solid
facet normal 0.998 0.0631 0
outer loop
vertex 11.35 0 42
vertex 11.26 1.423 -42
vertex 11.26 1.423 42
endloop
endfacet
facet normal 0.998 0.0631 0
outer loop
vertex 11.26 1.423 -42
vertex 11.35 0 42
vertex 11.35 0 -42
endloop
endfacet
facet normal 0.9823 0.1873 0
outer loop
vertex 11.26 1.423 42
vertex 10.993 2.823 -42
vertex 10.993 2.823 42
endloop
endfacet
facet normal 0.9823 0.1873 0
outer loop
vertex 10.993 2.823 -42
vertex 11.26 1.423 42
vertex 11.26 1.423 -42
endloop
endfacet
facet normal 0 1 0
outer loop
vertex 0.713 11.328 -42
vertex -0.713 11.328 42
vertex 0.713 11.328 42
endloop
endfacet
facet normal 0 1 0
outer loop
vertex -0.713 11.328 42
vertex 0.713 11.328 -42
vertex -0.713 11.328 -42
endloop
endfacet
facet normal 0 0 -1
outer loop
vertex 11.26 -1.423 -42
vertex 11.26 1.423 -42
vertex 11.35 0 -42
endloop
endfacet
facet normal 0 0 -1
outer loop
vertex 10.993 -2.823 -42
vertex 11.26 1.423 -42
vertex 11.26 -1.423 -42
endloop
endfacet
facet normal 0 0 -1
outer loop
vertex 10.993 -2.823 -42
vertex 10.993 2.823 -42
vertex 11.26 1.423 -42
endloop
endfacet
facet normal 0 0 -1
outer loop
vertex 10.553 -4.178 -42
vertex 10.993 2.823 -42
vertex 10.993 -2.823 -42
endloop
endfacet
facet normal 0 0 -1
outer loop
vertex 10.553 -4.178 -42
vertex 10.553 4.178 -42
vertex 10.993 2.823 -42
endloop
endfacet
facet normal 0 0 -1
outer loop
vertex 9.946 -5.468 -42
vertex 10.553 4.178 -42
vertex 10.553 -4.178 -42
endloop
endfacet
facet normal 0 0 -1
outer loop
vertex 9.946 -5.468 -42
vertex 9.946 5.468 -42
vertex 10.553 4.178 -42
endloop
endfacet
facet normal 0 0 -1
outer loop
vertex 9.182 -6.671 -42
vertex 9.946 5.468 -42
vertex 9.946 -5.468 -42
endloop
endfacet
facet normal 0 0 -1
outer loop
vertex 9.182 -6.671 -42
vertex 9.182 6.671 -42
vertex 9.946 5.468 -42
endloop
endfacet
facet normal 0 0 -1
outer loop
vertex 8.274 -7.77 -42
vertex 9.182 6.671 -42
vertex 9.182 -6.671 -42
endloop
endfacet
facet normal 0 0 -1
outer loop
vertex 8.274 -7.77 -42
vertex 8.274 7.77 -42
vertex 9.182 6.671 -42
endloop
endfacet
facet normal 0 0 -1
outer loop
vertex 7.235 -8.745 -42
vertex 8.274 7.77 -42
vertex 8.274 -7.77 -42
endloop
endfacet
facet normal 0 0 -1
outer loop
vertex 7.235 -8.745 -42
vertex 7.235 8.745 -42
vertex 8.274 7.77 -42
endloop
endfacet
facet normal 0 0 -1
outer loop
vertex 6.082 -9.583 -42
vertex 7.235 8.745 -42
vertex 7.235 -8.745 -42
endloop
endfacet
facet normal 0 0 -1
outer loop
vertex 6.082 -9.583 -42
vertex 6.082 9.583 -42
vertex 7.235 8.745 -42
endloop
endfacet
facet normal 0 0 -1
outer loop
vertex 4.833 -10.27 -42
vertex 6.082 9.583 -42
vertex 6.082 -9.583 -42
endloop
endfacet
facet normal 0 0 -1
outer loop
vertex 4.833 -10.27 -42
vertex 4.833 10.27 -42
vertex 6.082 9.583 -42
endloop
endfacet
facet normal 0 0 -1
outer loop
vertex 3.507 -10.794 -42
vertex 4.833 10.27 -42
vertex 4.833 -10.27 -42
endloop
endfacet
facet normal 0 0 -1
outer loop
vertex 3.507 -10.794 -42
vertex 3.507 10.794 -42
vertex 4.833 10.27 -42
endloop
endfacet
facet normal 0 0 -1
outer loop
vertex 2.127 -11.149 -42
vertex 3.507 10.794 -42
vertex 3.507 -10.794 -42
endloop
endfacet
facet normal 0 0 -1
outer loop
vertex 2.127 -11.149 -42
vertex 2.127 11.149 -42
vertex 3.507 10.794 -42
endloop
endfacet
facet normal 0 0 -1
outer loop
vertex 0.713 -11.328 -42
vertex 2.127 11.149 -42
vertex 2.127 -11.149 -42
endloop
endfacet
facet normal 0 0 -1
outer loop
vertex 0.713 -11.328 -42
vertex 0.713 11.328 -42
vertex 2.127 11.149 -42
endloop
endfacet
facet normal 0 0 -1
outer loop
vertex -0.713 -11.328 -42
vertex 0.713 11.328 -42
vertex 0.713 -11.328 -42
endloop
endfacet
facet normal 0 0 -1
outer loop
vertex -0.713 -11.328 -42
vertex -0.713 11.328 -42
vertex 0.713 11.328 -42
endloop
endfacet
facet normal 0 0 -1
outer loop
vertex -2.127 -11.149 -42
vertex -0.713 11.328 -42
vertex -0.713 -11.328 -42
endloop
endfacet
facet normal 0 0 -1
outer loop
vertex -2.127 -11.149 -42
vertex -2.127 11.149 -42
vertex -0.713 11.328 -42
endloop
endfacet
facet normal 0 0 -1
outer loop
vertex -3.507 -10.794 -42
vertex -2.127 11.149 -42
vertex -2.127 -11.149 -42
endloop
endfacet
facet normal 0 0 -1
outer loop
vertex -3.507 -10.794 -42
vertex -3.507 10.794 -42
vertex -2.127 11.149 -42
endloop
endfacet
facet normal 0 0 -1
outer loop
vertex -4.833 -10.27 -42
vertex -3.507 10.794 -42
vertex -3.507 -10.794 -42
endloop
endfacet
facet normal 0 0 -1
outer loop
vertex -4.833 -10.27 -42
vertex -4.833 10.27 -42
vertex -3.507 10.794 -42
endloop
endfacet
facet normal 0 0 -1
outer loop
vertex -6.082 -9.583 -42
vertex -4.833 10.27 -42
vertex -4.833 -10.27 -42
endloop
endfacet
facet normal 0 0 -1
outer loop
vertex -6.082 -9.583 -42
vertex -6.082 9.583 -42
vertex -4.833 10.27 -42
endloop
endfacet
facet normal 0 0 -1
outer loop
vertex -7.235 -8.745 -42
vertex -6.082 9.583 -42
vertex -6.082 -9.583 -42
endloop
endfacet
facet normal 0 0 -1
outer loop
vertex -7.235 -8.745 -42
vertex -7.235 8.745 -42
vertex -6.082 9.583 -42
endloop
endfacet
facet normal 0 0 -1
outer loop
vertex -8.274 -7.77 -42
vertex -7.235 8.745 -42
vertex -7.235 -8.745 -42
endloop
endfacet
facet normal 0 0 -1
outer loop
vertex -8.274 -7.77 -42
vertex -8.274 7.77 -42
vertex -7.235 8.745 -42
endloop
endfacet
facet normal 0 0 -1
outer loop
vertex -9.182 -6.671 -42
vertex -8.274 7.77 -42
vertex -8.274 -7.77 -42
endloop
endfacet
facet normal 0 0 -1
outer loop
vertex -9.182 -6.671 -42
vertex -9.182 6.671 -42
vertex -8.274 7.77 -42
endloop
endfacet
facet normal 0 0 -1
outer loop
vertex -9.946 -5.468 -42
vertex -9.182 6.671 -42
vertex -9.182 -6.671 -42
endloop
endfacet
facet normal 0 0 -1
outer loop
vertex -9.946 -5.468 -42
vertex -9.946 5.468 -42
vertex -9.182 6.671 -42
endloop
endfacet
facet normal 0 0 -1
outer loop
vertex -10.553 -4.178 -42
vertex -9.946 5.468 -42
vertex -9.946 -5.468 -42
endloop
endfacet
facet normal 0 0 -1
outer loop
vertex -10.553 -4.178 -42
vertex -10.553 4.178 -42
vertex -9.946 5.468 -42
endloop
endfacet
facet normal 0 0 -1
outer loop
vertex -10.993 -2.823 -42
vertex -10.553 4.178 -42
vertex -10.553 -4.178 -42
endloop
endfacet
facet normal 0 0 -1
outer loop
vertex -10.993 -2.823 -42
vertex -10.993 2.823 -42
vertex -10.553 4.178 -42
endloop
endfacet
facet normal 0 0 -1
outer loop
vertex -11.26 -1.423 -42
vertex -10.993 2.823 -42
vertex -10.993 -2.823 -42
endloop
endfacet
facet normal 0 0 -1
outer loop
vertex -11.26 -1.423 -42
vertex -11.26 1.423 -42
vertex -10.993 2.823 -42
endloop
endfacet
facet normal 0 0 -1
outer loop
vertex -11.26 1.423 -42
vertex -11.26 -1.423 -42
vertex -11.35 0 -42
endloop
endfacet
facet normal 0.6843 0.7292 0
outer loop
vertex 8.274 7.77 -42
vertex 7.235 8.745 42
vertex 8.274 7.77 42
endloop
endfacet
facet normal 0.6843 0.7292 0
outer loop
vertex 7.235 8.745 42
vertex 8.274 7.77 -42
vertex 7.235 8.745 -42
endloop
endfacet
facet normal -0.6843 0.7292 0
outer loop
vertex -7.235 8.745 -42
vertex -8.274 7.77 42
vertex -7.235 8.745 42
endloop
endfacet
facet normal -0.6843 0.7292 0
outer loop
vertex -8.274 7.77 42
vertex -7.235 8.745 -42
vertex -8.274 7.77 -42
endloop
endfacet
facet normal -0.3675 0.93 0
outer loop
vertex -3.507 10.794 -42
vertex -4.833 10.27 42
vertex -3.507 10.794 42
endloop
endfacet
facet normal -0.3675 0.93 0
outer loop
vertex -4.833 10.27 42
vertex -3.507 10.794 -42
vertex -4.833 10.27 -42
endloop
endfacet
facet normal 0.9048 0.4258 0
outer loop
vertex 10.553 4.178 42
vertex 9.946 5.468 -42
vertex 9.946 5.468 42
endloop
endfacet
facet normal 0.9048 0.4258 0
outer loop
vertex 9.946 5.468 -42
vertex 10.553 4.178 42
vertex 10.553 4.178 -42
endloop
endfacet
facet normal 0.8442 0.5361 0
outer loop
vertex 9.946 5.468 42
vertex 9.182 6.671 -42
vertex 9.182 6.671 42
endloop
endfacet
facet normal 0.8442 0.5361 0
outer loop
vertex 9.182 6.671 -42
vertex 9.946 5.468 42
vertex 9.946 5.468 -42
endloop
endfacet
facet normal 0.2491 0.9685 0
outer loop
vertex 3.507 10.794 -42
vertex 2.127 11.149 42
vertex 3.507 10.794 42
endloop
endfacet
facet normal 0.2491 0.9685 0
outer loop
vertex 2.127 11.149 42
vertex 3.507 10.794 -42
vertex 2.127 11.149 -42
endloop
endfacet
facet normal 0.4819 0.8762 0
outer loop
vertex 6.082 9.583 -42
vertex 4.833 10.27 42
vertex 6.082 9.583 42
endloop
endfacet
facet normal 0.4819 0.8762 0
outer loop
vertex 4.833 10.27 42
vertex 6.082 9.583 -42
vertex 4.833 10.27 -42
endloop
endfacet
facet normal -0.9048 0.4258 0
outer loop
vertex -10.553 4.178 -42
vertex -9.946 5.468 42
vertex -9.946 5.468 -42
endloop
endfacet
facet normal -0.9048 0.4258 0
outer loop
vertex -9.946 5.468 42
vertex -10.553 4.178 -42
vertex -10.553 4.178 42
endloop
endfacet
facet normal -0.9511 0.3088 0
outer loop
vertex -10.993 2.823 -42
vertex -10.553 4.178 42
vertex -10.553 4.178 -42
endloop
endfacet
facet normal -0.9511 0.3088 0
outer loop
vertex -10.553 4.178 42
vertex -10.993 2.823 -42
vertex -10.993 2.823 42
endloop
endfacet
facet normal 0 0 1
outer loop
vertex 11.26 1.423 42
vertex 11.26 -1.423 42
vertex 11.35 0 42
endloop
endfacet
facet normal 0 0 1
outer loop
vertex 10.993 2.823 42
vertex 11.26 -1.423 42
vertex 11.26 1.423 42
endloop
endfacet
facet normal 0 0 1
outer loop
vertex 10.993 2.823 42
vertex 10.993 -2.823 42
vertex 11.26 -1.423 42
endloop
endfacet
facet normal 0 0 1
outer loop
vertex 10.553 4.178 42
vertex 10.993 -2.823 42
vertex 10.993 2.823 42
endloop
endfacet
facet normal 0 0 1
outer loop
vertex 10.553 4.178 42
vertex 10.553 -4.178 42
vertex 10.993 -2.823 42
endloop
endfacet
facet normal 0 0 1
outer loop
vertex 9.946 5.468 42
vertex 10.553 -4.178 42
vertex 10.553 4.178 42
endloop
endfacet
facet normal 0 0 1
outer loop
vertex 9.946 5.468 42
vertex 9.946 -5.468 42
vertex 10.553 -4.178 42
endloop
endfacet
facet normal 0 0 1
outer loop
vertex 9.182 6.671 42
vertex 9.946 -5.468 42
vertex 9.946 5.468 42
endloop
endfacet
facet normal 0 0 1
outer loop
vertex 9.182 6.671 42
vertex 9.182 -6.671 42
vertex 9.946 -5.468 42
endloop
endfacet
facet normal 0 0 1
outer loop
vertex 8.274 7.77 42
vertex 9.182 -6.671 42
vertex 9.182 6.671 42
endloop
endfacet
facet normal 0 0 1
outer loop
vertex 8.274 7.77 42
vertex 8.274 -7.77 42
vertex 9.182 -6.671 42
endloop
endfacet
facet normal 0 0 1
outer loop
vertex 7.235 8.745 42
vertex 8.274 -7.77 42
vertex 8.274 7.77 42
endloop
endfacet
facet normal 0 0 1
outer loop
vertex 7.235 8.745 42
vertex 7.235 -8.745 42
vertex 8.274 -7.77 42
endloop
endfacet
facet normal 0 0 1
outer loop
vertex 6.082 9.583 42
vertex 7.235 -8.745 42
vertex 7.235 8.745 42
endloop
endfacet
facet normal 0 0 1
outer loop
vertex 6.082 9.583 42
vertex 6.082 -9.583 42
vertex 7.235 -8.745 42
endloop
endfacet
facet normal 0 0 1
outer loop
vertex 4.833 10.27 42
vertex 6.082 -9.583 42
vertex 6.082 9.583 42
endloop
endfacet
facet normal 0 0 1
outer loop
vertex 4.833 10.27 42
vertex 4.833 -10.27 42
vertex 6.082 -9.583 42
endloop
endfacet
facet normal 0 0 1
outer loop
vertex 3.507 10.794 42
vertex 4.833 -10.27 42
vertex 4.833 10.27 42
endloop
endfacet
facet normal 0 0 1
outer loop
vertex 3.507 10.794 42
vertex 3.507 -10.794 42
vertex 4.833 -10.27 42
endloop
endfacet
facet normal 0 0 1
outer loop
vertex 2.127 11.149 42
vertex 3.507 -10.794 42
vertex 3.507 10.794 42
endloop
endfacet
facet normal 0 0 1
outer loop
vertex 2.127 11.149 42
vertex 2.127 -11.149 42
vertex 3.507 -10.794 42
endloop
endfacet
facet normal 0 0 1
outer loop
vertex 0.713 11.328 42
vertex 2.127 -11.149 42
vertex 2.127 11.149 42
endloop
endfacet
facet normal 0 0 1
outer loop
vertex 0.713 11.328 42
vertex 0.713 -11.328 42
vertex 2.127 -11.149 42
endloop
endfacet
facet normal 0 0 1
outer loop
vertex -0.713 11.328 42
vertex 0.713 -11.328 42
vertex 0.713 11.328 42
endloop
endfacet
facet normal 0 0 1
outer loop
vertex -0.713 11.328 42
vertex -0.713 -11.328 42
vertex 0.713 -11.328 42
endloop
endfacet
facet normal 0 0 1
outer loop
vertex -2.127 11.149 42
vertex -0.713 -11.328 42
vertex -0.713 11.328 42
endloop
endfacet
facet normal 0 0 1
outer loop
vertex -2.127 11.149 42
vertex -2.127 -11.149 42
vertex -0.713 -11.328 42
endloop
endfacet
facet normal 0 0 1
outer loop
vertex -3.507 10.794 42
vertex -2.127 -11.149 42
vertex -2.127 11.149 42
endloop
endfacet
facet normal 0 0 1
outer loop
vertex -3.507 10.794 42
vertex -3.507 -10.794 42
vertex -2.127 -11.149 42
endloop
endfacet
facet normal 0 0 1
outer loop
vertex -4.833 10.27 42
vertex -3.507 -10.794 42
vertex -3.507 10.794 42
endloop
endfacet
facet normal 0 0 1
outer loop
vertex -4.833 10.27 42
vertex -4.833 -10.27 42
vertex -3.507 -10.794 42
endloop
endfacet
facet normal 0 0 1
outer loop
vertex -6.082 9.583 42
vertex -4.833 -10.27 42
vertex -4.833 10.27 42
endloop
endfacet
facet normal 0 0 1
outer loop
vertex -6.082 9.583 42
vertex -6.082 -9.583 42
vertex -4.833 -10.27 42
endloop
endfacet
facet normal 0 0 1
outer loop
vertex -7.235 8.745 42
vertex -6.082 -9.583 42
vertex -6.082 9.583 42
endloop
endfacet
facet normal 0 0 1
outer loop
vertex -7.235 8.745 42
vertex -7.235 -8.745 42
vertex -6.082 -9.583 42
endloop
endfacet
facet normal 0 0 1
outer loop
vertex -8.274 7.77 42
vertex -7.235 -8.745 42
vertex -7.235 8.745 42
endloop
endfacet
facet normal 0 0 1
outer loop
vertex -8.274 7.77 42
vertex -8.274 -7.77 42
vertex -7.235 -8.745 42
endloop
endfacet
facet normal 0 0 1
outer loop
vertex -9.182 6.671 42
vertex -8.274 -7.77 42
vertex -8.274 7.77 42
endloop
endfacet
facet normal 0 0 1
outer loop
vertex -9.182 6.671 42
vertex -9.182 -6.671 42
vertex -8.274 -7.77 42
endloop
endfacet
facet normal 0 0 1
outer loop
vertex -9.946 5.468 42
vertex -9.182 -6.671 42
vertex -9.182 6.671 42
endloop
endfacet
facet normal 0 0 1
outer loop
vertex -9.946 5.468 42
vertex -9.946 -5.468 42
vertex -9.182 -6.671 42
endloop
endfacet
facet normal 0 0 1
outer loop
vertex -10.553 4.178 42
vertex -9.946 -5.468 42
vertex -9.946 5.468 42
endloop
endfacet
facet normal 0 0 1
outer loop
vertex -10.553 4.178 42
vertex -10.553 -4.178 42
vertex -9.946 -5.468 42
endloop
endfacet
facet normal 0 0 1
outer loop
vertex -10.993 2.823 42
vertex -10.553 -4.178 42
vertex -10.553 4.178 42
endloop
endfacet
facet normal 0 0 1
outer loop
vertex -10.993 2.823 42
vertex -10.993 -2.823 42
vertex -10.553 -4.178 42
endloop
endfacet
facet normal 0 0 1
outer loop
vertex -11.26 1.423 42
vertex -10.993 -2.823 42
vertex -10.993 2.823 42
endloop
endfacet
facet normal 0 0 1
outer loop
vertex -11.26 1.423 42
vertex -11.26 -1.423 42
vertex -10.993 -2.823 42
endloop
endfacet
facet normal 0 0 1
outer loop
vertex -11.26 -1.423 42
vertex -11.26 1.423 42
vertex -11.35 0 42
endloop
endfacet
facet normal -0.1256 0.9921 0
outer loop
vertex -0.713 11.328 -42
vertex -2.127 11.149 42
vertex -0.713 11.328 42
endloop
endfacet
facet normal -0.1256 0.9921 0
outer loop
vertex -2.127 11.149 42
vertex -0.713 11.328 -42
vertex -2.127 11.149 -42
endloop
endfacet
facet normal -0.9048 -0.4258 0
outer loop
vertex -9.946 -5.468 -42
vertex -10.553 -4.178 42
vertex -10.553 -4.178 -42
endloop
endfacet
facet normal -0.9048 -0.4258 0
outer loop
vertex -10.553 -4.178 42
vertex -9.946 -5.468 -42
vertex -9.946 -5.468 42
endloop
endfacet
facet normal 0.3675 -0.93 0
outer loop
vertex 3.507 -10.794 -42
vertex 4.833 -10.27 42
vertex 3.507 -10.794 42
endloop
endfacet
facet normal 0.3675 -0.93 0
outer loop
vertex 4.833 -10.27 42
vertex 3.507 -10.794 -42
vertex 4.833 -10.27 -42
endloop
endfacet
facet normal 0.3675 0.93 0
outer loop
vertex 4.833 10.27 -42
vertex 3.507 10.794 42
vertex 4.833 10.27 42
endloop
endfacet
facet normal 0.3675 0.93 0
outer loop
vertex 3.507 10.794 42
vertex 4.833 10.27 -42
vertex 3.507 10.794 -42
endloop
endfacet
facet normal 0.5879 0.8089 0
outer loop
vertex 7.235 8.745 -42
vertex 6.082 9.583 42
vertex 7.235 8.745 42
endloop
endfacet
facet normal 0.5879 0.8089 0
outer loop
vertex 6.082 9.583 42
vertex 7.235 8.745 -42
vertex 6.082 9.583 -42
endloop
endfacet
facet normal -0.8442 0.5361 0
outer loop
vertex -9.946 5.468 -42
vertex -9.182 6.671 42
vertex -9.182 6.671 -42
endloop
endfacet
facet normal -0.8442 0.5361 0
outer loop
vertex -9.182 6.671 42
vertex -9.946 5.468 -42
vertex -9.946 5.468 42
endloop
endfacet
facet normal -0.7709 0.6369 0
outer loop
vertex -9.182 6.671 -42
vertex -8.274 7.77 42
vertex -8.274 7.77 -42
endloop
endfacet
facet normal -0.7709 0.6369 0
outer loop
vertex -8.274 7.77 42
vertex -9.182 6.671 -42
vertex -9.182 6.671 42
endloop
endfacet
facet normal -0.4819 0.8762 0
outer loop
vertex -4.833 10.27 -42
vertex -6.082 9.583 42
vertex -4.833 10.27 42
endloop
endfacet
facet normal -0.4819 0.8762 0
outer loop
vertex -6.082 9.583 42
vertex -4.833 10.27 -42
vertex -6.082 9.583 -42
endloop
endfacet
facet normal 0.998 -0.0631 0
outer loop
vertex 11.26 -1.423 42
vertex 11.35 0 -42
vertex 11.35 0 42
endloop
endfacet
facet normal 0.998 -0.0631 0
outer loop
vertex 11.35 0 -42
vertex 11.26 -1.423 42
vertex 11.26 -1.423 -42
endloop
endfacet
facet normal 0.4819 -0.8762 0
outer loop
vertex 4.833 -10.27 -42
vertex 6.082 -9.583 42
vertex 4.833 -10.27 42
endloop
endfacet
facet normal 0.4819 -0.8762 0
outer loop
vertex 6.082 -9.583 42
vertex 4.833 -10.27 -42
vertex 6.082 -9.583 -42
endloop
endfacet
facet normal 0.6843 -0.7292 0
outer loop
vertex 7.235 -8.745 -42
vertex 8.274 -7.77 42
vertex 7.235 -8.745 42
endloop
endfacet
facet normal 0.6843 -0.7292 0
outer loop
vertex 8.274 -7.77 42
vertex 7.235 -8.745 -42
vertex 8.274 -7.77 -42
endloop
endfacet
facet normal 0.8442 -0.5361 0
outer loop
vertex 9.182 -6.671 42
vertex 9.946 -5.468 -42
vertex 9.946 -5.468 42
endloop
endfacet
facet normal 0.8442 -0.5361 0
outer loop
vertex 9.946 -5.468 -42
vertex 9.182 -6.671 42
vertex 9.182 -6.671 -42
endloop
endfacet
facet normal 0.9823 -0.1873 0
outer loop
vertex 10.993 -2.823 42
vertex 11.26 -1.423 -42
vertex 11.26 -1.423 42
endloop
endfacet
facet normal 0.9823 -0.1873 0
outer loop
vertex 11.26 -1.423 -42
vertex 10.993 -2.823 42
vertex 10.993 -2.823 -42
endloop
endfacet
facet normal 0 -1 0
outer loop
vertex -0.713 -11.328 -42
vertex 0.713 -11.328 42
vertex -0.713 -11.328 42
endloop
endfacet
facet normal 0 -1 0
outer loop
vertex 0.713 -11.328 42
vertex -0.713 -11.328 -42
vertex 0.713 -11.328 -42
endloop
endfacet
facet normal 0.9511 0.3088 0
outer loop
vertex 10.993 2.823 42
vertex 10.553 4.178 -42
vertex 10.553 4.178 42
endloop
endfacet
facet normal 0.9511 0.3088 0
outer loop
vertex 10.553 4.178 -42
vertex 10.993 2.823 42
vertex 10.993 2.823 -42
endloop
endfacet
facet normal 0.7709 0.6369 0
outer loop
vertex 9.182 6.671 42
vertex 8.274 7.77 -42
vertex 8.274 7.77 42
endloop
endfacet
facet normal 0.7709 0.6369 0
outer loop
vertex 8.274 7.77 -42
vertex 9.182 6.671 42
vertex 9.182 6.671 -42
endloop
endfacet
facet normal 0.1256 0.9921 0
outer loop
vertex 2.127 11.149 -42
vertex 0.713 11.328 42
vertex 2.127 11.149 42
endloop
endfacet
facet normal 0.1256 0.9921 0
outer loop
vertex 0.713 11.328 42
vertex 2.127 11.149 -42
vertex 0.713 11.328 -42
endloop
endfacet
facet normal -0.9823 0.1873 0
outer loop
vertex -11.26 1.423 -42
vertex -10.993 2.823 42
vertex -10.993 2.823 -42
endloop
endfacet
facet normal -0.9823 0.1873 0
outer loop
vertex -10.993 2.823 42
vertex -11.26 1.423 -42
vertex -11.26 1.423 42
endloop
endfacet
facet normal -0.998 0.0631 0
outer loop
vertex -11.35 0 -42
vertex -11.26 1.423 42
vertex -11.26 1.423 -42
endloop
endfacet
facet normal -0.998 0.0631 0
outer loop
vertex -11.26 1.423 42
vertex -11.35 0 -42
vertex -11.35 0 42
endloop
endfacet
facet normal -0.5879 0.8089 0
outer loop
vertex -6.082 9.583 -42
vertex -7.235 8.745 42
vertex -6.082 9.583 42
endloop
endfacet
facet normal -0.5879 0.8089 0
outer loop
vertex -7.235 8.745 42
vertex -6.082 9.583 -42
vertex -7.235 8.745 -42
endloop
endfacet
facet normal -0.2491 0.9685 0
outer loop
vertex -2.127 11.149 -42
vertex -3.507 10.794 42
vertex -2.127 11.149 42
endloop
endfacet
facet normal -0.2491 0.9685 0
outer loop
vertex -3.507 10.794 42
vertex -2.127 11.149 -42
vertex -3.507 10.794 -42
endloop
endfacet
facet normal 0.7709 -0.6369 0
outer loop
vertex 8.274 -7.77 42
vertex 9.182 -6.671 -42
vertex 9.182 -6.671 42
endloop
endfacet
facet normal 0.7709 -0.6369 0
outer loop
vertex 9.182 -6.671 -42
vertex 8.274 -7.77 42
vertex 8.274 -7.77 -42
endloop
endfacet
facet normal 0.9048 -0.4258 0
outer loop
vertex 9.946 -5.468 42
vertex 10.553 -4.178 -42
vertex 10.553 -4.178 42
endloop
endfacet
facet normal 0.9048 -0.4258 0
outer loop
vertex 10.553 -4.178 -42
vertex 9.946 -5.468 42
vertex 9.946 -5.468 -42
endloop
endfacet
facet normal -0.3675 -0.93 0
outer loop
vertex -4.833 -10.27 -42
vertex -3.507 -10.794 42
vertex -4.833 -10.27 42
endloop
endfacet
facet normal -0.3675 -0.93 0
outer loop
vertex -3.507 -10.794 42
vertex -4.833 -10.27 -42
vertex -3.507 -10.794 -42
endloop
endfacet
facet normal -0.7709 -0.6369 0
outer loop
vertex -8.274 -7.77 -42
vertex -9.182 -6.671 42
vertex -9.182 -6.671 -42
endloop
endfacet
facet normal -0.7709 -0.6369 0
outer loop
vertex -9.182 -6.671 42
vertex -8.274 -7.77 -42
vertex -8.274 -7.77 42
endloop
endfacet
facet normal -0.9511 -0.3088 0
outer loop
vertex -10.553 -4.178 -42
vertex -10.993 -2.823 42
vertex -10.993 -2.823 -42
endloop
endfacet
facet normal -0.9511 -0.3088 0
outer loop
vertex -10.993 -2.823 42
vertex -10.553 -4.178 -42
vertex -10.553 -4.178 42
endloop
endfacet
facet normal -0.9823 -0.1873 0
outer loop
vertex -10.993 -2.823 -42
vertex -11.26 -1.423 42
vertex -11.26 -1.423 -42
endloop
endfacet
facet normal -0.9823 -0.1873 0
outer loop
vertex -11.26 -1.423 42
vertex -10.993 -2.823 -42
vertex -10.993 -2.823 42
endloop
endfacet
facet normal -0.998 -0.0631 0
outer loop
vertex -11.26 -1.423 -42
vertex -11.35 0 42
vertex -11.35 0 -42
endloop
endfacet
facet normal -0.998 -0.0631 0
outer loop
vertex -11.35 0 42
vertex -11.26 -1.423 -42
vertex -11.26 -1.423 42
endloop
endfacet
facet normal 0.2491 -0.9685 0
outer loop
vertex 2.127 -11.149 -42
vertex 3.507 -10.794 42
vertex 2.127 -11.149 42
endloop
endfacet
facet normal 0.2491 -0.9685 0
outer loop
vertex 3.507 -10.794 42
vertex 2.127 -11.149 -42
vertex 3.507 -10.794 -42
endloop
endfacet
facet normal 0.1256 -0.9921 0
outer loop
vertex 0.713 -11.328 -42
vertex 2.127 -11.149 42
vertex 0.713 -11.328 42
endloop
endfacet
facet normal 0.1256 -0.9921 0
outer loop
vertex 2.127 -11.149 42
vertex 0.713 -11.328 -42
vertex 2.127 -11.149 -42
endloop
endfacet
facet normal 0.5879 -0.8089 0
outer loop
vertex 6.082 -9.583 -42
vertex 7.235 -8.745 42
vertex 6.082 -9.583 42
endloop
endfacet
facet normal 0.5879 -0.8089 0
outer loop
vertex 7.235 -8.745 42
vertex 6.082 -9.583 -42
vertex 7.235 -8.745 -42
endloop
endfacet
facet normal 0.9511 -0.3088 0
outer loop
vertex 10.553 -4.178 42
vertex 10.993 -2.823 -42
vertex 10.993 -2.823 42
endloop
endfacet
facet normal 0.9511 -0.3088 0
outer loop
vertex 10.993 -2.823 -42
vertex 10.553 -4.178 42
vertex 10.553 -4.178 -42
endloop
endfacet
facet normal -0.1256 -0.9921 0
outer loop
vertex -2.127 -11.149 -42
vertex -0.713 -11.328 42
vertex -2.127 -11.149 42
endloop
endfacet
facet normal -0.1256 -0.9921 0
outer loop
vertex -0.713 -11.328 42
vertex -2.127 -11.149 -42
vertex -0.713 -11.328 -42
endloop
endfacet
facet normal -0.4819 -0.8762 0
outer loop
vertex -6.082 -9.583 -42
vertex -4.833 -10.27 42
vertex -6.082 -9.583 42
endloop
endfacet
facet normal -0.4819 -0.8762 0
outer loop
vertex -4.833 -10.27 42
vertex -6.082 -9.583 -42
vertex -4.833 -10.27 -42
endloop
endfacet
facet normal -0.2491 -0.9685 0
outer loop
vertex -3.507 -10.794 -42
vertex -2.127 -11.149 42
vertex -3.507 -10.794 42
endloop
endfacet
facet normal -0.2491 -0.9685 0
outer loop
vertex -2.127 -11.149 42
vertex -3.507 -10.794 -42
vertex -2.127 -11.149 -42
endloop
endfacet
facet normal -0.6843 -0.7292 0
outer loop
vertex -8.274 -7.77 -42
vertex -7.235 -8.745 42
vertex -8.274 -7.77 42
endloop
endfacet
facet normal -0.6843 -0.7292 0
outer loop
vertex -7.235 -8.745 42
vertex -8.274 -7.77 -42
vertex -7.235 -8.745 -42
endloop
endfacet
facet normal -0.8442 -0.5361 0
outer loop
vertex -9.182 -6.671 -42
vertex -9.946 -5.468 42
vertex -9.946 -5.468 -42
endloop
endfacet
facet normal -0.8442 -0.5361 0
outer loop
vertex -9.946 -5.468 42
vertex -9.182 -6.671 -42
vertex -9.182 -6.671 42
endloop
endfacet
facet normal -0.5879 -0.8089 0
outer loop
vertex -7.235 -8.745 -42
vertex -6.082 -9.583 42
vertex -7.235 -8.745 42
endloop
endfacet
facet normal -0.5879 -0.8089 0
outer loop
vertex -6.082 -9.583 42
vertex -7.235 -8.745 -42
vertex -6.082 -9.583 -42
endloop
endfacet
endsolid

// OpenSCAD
$fn = 50;


difference() {
	union() {
		translate(v = [0, 0, -42.0000000000]) {
			cylinder(h = 84, r = 11.3500000000);
		}
	}
	union() {
		translate(v = [0, 0, -100.0000000000]) {
			cylinder(h = 200, r = 0);
		}
	}
}
